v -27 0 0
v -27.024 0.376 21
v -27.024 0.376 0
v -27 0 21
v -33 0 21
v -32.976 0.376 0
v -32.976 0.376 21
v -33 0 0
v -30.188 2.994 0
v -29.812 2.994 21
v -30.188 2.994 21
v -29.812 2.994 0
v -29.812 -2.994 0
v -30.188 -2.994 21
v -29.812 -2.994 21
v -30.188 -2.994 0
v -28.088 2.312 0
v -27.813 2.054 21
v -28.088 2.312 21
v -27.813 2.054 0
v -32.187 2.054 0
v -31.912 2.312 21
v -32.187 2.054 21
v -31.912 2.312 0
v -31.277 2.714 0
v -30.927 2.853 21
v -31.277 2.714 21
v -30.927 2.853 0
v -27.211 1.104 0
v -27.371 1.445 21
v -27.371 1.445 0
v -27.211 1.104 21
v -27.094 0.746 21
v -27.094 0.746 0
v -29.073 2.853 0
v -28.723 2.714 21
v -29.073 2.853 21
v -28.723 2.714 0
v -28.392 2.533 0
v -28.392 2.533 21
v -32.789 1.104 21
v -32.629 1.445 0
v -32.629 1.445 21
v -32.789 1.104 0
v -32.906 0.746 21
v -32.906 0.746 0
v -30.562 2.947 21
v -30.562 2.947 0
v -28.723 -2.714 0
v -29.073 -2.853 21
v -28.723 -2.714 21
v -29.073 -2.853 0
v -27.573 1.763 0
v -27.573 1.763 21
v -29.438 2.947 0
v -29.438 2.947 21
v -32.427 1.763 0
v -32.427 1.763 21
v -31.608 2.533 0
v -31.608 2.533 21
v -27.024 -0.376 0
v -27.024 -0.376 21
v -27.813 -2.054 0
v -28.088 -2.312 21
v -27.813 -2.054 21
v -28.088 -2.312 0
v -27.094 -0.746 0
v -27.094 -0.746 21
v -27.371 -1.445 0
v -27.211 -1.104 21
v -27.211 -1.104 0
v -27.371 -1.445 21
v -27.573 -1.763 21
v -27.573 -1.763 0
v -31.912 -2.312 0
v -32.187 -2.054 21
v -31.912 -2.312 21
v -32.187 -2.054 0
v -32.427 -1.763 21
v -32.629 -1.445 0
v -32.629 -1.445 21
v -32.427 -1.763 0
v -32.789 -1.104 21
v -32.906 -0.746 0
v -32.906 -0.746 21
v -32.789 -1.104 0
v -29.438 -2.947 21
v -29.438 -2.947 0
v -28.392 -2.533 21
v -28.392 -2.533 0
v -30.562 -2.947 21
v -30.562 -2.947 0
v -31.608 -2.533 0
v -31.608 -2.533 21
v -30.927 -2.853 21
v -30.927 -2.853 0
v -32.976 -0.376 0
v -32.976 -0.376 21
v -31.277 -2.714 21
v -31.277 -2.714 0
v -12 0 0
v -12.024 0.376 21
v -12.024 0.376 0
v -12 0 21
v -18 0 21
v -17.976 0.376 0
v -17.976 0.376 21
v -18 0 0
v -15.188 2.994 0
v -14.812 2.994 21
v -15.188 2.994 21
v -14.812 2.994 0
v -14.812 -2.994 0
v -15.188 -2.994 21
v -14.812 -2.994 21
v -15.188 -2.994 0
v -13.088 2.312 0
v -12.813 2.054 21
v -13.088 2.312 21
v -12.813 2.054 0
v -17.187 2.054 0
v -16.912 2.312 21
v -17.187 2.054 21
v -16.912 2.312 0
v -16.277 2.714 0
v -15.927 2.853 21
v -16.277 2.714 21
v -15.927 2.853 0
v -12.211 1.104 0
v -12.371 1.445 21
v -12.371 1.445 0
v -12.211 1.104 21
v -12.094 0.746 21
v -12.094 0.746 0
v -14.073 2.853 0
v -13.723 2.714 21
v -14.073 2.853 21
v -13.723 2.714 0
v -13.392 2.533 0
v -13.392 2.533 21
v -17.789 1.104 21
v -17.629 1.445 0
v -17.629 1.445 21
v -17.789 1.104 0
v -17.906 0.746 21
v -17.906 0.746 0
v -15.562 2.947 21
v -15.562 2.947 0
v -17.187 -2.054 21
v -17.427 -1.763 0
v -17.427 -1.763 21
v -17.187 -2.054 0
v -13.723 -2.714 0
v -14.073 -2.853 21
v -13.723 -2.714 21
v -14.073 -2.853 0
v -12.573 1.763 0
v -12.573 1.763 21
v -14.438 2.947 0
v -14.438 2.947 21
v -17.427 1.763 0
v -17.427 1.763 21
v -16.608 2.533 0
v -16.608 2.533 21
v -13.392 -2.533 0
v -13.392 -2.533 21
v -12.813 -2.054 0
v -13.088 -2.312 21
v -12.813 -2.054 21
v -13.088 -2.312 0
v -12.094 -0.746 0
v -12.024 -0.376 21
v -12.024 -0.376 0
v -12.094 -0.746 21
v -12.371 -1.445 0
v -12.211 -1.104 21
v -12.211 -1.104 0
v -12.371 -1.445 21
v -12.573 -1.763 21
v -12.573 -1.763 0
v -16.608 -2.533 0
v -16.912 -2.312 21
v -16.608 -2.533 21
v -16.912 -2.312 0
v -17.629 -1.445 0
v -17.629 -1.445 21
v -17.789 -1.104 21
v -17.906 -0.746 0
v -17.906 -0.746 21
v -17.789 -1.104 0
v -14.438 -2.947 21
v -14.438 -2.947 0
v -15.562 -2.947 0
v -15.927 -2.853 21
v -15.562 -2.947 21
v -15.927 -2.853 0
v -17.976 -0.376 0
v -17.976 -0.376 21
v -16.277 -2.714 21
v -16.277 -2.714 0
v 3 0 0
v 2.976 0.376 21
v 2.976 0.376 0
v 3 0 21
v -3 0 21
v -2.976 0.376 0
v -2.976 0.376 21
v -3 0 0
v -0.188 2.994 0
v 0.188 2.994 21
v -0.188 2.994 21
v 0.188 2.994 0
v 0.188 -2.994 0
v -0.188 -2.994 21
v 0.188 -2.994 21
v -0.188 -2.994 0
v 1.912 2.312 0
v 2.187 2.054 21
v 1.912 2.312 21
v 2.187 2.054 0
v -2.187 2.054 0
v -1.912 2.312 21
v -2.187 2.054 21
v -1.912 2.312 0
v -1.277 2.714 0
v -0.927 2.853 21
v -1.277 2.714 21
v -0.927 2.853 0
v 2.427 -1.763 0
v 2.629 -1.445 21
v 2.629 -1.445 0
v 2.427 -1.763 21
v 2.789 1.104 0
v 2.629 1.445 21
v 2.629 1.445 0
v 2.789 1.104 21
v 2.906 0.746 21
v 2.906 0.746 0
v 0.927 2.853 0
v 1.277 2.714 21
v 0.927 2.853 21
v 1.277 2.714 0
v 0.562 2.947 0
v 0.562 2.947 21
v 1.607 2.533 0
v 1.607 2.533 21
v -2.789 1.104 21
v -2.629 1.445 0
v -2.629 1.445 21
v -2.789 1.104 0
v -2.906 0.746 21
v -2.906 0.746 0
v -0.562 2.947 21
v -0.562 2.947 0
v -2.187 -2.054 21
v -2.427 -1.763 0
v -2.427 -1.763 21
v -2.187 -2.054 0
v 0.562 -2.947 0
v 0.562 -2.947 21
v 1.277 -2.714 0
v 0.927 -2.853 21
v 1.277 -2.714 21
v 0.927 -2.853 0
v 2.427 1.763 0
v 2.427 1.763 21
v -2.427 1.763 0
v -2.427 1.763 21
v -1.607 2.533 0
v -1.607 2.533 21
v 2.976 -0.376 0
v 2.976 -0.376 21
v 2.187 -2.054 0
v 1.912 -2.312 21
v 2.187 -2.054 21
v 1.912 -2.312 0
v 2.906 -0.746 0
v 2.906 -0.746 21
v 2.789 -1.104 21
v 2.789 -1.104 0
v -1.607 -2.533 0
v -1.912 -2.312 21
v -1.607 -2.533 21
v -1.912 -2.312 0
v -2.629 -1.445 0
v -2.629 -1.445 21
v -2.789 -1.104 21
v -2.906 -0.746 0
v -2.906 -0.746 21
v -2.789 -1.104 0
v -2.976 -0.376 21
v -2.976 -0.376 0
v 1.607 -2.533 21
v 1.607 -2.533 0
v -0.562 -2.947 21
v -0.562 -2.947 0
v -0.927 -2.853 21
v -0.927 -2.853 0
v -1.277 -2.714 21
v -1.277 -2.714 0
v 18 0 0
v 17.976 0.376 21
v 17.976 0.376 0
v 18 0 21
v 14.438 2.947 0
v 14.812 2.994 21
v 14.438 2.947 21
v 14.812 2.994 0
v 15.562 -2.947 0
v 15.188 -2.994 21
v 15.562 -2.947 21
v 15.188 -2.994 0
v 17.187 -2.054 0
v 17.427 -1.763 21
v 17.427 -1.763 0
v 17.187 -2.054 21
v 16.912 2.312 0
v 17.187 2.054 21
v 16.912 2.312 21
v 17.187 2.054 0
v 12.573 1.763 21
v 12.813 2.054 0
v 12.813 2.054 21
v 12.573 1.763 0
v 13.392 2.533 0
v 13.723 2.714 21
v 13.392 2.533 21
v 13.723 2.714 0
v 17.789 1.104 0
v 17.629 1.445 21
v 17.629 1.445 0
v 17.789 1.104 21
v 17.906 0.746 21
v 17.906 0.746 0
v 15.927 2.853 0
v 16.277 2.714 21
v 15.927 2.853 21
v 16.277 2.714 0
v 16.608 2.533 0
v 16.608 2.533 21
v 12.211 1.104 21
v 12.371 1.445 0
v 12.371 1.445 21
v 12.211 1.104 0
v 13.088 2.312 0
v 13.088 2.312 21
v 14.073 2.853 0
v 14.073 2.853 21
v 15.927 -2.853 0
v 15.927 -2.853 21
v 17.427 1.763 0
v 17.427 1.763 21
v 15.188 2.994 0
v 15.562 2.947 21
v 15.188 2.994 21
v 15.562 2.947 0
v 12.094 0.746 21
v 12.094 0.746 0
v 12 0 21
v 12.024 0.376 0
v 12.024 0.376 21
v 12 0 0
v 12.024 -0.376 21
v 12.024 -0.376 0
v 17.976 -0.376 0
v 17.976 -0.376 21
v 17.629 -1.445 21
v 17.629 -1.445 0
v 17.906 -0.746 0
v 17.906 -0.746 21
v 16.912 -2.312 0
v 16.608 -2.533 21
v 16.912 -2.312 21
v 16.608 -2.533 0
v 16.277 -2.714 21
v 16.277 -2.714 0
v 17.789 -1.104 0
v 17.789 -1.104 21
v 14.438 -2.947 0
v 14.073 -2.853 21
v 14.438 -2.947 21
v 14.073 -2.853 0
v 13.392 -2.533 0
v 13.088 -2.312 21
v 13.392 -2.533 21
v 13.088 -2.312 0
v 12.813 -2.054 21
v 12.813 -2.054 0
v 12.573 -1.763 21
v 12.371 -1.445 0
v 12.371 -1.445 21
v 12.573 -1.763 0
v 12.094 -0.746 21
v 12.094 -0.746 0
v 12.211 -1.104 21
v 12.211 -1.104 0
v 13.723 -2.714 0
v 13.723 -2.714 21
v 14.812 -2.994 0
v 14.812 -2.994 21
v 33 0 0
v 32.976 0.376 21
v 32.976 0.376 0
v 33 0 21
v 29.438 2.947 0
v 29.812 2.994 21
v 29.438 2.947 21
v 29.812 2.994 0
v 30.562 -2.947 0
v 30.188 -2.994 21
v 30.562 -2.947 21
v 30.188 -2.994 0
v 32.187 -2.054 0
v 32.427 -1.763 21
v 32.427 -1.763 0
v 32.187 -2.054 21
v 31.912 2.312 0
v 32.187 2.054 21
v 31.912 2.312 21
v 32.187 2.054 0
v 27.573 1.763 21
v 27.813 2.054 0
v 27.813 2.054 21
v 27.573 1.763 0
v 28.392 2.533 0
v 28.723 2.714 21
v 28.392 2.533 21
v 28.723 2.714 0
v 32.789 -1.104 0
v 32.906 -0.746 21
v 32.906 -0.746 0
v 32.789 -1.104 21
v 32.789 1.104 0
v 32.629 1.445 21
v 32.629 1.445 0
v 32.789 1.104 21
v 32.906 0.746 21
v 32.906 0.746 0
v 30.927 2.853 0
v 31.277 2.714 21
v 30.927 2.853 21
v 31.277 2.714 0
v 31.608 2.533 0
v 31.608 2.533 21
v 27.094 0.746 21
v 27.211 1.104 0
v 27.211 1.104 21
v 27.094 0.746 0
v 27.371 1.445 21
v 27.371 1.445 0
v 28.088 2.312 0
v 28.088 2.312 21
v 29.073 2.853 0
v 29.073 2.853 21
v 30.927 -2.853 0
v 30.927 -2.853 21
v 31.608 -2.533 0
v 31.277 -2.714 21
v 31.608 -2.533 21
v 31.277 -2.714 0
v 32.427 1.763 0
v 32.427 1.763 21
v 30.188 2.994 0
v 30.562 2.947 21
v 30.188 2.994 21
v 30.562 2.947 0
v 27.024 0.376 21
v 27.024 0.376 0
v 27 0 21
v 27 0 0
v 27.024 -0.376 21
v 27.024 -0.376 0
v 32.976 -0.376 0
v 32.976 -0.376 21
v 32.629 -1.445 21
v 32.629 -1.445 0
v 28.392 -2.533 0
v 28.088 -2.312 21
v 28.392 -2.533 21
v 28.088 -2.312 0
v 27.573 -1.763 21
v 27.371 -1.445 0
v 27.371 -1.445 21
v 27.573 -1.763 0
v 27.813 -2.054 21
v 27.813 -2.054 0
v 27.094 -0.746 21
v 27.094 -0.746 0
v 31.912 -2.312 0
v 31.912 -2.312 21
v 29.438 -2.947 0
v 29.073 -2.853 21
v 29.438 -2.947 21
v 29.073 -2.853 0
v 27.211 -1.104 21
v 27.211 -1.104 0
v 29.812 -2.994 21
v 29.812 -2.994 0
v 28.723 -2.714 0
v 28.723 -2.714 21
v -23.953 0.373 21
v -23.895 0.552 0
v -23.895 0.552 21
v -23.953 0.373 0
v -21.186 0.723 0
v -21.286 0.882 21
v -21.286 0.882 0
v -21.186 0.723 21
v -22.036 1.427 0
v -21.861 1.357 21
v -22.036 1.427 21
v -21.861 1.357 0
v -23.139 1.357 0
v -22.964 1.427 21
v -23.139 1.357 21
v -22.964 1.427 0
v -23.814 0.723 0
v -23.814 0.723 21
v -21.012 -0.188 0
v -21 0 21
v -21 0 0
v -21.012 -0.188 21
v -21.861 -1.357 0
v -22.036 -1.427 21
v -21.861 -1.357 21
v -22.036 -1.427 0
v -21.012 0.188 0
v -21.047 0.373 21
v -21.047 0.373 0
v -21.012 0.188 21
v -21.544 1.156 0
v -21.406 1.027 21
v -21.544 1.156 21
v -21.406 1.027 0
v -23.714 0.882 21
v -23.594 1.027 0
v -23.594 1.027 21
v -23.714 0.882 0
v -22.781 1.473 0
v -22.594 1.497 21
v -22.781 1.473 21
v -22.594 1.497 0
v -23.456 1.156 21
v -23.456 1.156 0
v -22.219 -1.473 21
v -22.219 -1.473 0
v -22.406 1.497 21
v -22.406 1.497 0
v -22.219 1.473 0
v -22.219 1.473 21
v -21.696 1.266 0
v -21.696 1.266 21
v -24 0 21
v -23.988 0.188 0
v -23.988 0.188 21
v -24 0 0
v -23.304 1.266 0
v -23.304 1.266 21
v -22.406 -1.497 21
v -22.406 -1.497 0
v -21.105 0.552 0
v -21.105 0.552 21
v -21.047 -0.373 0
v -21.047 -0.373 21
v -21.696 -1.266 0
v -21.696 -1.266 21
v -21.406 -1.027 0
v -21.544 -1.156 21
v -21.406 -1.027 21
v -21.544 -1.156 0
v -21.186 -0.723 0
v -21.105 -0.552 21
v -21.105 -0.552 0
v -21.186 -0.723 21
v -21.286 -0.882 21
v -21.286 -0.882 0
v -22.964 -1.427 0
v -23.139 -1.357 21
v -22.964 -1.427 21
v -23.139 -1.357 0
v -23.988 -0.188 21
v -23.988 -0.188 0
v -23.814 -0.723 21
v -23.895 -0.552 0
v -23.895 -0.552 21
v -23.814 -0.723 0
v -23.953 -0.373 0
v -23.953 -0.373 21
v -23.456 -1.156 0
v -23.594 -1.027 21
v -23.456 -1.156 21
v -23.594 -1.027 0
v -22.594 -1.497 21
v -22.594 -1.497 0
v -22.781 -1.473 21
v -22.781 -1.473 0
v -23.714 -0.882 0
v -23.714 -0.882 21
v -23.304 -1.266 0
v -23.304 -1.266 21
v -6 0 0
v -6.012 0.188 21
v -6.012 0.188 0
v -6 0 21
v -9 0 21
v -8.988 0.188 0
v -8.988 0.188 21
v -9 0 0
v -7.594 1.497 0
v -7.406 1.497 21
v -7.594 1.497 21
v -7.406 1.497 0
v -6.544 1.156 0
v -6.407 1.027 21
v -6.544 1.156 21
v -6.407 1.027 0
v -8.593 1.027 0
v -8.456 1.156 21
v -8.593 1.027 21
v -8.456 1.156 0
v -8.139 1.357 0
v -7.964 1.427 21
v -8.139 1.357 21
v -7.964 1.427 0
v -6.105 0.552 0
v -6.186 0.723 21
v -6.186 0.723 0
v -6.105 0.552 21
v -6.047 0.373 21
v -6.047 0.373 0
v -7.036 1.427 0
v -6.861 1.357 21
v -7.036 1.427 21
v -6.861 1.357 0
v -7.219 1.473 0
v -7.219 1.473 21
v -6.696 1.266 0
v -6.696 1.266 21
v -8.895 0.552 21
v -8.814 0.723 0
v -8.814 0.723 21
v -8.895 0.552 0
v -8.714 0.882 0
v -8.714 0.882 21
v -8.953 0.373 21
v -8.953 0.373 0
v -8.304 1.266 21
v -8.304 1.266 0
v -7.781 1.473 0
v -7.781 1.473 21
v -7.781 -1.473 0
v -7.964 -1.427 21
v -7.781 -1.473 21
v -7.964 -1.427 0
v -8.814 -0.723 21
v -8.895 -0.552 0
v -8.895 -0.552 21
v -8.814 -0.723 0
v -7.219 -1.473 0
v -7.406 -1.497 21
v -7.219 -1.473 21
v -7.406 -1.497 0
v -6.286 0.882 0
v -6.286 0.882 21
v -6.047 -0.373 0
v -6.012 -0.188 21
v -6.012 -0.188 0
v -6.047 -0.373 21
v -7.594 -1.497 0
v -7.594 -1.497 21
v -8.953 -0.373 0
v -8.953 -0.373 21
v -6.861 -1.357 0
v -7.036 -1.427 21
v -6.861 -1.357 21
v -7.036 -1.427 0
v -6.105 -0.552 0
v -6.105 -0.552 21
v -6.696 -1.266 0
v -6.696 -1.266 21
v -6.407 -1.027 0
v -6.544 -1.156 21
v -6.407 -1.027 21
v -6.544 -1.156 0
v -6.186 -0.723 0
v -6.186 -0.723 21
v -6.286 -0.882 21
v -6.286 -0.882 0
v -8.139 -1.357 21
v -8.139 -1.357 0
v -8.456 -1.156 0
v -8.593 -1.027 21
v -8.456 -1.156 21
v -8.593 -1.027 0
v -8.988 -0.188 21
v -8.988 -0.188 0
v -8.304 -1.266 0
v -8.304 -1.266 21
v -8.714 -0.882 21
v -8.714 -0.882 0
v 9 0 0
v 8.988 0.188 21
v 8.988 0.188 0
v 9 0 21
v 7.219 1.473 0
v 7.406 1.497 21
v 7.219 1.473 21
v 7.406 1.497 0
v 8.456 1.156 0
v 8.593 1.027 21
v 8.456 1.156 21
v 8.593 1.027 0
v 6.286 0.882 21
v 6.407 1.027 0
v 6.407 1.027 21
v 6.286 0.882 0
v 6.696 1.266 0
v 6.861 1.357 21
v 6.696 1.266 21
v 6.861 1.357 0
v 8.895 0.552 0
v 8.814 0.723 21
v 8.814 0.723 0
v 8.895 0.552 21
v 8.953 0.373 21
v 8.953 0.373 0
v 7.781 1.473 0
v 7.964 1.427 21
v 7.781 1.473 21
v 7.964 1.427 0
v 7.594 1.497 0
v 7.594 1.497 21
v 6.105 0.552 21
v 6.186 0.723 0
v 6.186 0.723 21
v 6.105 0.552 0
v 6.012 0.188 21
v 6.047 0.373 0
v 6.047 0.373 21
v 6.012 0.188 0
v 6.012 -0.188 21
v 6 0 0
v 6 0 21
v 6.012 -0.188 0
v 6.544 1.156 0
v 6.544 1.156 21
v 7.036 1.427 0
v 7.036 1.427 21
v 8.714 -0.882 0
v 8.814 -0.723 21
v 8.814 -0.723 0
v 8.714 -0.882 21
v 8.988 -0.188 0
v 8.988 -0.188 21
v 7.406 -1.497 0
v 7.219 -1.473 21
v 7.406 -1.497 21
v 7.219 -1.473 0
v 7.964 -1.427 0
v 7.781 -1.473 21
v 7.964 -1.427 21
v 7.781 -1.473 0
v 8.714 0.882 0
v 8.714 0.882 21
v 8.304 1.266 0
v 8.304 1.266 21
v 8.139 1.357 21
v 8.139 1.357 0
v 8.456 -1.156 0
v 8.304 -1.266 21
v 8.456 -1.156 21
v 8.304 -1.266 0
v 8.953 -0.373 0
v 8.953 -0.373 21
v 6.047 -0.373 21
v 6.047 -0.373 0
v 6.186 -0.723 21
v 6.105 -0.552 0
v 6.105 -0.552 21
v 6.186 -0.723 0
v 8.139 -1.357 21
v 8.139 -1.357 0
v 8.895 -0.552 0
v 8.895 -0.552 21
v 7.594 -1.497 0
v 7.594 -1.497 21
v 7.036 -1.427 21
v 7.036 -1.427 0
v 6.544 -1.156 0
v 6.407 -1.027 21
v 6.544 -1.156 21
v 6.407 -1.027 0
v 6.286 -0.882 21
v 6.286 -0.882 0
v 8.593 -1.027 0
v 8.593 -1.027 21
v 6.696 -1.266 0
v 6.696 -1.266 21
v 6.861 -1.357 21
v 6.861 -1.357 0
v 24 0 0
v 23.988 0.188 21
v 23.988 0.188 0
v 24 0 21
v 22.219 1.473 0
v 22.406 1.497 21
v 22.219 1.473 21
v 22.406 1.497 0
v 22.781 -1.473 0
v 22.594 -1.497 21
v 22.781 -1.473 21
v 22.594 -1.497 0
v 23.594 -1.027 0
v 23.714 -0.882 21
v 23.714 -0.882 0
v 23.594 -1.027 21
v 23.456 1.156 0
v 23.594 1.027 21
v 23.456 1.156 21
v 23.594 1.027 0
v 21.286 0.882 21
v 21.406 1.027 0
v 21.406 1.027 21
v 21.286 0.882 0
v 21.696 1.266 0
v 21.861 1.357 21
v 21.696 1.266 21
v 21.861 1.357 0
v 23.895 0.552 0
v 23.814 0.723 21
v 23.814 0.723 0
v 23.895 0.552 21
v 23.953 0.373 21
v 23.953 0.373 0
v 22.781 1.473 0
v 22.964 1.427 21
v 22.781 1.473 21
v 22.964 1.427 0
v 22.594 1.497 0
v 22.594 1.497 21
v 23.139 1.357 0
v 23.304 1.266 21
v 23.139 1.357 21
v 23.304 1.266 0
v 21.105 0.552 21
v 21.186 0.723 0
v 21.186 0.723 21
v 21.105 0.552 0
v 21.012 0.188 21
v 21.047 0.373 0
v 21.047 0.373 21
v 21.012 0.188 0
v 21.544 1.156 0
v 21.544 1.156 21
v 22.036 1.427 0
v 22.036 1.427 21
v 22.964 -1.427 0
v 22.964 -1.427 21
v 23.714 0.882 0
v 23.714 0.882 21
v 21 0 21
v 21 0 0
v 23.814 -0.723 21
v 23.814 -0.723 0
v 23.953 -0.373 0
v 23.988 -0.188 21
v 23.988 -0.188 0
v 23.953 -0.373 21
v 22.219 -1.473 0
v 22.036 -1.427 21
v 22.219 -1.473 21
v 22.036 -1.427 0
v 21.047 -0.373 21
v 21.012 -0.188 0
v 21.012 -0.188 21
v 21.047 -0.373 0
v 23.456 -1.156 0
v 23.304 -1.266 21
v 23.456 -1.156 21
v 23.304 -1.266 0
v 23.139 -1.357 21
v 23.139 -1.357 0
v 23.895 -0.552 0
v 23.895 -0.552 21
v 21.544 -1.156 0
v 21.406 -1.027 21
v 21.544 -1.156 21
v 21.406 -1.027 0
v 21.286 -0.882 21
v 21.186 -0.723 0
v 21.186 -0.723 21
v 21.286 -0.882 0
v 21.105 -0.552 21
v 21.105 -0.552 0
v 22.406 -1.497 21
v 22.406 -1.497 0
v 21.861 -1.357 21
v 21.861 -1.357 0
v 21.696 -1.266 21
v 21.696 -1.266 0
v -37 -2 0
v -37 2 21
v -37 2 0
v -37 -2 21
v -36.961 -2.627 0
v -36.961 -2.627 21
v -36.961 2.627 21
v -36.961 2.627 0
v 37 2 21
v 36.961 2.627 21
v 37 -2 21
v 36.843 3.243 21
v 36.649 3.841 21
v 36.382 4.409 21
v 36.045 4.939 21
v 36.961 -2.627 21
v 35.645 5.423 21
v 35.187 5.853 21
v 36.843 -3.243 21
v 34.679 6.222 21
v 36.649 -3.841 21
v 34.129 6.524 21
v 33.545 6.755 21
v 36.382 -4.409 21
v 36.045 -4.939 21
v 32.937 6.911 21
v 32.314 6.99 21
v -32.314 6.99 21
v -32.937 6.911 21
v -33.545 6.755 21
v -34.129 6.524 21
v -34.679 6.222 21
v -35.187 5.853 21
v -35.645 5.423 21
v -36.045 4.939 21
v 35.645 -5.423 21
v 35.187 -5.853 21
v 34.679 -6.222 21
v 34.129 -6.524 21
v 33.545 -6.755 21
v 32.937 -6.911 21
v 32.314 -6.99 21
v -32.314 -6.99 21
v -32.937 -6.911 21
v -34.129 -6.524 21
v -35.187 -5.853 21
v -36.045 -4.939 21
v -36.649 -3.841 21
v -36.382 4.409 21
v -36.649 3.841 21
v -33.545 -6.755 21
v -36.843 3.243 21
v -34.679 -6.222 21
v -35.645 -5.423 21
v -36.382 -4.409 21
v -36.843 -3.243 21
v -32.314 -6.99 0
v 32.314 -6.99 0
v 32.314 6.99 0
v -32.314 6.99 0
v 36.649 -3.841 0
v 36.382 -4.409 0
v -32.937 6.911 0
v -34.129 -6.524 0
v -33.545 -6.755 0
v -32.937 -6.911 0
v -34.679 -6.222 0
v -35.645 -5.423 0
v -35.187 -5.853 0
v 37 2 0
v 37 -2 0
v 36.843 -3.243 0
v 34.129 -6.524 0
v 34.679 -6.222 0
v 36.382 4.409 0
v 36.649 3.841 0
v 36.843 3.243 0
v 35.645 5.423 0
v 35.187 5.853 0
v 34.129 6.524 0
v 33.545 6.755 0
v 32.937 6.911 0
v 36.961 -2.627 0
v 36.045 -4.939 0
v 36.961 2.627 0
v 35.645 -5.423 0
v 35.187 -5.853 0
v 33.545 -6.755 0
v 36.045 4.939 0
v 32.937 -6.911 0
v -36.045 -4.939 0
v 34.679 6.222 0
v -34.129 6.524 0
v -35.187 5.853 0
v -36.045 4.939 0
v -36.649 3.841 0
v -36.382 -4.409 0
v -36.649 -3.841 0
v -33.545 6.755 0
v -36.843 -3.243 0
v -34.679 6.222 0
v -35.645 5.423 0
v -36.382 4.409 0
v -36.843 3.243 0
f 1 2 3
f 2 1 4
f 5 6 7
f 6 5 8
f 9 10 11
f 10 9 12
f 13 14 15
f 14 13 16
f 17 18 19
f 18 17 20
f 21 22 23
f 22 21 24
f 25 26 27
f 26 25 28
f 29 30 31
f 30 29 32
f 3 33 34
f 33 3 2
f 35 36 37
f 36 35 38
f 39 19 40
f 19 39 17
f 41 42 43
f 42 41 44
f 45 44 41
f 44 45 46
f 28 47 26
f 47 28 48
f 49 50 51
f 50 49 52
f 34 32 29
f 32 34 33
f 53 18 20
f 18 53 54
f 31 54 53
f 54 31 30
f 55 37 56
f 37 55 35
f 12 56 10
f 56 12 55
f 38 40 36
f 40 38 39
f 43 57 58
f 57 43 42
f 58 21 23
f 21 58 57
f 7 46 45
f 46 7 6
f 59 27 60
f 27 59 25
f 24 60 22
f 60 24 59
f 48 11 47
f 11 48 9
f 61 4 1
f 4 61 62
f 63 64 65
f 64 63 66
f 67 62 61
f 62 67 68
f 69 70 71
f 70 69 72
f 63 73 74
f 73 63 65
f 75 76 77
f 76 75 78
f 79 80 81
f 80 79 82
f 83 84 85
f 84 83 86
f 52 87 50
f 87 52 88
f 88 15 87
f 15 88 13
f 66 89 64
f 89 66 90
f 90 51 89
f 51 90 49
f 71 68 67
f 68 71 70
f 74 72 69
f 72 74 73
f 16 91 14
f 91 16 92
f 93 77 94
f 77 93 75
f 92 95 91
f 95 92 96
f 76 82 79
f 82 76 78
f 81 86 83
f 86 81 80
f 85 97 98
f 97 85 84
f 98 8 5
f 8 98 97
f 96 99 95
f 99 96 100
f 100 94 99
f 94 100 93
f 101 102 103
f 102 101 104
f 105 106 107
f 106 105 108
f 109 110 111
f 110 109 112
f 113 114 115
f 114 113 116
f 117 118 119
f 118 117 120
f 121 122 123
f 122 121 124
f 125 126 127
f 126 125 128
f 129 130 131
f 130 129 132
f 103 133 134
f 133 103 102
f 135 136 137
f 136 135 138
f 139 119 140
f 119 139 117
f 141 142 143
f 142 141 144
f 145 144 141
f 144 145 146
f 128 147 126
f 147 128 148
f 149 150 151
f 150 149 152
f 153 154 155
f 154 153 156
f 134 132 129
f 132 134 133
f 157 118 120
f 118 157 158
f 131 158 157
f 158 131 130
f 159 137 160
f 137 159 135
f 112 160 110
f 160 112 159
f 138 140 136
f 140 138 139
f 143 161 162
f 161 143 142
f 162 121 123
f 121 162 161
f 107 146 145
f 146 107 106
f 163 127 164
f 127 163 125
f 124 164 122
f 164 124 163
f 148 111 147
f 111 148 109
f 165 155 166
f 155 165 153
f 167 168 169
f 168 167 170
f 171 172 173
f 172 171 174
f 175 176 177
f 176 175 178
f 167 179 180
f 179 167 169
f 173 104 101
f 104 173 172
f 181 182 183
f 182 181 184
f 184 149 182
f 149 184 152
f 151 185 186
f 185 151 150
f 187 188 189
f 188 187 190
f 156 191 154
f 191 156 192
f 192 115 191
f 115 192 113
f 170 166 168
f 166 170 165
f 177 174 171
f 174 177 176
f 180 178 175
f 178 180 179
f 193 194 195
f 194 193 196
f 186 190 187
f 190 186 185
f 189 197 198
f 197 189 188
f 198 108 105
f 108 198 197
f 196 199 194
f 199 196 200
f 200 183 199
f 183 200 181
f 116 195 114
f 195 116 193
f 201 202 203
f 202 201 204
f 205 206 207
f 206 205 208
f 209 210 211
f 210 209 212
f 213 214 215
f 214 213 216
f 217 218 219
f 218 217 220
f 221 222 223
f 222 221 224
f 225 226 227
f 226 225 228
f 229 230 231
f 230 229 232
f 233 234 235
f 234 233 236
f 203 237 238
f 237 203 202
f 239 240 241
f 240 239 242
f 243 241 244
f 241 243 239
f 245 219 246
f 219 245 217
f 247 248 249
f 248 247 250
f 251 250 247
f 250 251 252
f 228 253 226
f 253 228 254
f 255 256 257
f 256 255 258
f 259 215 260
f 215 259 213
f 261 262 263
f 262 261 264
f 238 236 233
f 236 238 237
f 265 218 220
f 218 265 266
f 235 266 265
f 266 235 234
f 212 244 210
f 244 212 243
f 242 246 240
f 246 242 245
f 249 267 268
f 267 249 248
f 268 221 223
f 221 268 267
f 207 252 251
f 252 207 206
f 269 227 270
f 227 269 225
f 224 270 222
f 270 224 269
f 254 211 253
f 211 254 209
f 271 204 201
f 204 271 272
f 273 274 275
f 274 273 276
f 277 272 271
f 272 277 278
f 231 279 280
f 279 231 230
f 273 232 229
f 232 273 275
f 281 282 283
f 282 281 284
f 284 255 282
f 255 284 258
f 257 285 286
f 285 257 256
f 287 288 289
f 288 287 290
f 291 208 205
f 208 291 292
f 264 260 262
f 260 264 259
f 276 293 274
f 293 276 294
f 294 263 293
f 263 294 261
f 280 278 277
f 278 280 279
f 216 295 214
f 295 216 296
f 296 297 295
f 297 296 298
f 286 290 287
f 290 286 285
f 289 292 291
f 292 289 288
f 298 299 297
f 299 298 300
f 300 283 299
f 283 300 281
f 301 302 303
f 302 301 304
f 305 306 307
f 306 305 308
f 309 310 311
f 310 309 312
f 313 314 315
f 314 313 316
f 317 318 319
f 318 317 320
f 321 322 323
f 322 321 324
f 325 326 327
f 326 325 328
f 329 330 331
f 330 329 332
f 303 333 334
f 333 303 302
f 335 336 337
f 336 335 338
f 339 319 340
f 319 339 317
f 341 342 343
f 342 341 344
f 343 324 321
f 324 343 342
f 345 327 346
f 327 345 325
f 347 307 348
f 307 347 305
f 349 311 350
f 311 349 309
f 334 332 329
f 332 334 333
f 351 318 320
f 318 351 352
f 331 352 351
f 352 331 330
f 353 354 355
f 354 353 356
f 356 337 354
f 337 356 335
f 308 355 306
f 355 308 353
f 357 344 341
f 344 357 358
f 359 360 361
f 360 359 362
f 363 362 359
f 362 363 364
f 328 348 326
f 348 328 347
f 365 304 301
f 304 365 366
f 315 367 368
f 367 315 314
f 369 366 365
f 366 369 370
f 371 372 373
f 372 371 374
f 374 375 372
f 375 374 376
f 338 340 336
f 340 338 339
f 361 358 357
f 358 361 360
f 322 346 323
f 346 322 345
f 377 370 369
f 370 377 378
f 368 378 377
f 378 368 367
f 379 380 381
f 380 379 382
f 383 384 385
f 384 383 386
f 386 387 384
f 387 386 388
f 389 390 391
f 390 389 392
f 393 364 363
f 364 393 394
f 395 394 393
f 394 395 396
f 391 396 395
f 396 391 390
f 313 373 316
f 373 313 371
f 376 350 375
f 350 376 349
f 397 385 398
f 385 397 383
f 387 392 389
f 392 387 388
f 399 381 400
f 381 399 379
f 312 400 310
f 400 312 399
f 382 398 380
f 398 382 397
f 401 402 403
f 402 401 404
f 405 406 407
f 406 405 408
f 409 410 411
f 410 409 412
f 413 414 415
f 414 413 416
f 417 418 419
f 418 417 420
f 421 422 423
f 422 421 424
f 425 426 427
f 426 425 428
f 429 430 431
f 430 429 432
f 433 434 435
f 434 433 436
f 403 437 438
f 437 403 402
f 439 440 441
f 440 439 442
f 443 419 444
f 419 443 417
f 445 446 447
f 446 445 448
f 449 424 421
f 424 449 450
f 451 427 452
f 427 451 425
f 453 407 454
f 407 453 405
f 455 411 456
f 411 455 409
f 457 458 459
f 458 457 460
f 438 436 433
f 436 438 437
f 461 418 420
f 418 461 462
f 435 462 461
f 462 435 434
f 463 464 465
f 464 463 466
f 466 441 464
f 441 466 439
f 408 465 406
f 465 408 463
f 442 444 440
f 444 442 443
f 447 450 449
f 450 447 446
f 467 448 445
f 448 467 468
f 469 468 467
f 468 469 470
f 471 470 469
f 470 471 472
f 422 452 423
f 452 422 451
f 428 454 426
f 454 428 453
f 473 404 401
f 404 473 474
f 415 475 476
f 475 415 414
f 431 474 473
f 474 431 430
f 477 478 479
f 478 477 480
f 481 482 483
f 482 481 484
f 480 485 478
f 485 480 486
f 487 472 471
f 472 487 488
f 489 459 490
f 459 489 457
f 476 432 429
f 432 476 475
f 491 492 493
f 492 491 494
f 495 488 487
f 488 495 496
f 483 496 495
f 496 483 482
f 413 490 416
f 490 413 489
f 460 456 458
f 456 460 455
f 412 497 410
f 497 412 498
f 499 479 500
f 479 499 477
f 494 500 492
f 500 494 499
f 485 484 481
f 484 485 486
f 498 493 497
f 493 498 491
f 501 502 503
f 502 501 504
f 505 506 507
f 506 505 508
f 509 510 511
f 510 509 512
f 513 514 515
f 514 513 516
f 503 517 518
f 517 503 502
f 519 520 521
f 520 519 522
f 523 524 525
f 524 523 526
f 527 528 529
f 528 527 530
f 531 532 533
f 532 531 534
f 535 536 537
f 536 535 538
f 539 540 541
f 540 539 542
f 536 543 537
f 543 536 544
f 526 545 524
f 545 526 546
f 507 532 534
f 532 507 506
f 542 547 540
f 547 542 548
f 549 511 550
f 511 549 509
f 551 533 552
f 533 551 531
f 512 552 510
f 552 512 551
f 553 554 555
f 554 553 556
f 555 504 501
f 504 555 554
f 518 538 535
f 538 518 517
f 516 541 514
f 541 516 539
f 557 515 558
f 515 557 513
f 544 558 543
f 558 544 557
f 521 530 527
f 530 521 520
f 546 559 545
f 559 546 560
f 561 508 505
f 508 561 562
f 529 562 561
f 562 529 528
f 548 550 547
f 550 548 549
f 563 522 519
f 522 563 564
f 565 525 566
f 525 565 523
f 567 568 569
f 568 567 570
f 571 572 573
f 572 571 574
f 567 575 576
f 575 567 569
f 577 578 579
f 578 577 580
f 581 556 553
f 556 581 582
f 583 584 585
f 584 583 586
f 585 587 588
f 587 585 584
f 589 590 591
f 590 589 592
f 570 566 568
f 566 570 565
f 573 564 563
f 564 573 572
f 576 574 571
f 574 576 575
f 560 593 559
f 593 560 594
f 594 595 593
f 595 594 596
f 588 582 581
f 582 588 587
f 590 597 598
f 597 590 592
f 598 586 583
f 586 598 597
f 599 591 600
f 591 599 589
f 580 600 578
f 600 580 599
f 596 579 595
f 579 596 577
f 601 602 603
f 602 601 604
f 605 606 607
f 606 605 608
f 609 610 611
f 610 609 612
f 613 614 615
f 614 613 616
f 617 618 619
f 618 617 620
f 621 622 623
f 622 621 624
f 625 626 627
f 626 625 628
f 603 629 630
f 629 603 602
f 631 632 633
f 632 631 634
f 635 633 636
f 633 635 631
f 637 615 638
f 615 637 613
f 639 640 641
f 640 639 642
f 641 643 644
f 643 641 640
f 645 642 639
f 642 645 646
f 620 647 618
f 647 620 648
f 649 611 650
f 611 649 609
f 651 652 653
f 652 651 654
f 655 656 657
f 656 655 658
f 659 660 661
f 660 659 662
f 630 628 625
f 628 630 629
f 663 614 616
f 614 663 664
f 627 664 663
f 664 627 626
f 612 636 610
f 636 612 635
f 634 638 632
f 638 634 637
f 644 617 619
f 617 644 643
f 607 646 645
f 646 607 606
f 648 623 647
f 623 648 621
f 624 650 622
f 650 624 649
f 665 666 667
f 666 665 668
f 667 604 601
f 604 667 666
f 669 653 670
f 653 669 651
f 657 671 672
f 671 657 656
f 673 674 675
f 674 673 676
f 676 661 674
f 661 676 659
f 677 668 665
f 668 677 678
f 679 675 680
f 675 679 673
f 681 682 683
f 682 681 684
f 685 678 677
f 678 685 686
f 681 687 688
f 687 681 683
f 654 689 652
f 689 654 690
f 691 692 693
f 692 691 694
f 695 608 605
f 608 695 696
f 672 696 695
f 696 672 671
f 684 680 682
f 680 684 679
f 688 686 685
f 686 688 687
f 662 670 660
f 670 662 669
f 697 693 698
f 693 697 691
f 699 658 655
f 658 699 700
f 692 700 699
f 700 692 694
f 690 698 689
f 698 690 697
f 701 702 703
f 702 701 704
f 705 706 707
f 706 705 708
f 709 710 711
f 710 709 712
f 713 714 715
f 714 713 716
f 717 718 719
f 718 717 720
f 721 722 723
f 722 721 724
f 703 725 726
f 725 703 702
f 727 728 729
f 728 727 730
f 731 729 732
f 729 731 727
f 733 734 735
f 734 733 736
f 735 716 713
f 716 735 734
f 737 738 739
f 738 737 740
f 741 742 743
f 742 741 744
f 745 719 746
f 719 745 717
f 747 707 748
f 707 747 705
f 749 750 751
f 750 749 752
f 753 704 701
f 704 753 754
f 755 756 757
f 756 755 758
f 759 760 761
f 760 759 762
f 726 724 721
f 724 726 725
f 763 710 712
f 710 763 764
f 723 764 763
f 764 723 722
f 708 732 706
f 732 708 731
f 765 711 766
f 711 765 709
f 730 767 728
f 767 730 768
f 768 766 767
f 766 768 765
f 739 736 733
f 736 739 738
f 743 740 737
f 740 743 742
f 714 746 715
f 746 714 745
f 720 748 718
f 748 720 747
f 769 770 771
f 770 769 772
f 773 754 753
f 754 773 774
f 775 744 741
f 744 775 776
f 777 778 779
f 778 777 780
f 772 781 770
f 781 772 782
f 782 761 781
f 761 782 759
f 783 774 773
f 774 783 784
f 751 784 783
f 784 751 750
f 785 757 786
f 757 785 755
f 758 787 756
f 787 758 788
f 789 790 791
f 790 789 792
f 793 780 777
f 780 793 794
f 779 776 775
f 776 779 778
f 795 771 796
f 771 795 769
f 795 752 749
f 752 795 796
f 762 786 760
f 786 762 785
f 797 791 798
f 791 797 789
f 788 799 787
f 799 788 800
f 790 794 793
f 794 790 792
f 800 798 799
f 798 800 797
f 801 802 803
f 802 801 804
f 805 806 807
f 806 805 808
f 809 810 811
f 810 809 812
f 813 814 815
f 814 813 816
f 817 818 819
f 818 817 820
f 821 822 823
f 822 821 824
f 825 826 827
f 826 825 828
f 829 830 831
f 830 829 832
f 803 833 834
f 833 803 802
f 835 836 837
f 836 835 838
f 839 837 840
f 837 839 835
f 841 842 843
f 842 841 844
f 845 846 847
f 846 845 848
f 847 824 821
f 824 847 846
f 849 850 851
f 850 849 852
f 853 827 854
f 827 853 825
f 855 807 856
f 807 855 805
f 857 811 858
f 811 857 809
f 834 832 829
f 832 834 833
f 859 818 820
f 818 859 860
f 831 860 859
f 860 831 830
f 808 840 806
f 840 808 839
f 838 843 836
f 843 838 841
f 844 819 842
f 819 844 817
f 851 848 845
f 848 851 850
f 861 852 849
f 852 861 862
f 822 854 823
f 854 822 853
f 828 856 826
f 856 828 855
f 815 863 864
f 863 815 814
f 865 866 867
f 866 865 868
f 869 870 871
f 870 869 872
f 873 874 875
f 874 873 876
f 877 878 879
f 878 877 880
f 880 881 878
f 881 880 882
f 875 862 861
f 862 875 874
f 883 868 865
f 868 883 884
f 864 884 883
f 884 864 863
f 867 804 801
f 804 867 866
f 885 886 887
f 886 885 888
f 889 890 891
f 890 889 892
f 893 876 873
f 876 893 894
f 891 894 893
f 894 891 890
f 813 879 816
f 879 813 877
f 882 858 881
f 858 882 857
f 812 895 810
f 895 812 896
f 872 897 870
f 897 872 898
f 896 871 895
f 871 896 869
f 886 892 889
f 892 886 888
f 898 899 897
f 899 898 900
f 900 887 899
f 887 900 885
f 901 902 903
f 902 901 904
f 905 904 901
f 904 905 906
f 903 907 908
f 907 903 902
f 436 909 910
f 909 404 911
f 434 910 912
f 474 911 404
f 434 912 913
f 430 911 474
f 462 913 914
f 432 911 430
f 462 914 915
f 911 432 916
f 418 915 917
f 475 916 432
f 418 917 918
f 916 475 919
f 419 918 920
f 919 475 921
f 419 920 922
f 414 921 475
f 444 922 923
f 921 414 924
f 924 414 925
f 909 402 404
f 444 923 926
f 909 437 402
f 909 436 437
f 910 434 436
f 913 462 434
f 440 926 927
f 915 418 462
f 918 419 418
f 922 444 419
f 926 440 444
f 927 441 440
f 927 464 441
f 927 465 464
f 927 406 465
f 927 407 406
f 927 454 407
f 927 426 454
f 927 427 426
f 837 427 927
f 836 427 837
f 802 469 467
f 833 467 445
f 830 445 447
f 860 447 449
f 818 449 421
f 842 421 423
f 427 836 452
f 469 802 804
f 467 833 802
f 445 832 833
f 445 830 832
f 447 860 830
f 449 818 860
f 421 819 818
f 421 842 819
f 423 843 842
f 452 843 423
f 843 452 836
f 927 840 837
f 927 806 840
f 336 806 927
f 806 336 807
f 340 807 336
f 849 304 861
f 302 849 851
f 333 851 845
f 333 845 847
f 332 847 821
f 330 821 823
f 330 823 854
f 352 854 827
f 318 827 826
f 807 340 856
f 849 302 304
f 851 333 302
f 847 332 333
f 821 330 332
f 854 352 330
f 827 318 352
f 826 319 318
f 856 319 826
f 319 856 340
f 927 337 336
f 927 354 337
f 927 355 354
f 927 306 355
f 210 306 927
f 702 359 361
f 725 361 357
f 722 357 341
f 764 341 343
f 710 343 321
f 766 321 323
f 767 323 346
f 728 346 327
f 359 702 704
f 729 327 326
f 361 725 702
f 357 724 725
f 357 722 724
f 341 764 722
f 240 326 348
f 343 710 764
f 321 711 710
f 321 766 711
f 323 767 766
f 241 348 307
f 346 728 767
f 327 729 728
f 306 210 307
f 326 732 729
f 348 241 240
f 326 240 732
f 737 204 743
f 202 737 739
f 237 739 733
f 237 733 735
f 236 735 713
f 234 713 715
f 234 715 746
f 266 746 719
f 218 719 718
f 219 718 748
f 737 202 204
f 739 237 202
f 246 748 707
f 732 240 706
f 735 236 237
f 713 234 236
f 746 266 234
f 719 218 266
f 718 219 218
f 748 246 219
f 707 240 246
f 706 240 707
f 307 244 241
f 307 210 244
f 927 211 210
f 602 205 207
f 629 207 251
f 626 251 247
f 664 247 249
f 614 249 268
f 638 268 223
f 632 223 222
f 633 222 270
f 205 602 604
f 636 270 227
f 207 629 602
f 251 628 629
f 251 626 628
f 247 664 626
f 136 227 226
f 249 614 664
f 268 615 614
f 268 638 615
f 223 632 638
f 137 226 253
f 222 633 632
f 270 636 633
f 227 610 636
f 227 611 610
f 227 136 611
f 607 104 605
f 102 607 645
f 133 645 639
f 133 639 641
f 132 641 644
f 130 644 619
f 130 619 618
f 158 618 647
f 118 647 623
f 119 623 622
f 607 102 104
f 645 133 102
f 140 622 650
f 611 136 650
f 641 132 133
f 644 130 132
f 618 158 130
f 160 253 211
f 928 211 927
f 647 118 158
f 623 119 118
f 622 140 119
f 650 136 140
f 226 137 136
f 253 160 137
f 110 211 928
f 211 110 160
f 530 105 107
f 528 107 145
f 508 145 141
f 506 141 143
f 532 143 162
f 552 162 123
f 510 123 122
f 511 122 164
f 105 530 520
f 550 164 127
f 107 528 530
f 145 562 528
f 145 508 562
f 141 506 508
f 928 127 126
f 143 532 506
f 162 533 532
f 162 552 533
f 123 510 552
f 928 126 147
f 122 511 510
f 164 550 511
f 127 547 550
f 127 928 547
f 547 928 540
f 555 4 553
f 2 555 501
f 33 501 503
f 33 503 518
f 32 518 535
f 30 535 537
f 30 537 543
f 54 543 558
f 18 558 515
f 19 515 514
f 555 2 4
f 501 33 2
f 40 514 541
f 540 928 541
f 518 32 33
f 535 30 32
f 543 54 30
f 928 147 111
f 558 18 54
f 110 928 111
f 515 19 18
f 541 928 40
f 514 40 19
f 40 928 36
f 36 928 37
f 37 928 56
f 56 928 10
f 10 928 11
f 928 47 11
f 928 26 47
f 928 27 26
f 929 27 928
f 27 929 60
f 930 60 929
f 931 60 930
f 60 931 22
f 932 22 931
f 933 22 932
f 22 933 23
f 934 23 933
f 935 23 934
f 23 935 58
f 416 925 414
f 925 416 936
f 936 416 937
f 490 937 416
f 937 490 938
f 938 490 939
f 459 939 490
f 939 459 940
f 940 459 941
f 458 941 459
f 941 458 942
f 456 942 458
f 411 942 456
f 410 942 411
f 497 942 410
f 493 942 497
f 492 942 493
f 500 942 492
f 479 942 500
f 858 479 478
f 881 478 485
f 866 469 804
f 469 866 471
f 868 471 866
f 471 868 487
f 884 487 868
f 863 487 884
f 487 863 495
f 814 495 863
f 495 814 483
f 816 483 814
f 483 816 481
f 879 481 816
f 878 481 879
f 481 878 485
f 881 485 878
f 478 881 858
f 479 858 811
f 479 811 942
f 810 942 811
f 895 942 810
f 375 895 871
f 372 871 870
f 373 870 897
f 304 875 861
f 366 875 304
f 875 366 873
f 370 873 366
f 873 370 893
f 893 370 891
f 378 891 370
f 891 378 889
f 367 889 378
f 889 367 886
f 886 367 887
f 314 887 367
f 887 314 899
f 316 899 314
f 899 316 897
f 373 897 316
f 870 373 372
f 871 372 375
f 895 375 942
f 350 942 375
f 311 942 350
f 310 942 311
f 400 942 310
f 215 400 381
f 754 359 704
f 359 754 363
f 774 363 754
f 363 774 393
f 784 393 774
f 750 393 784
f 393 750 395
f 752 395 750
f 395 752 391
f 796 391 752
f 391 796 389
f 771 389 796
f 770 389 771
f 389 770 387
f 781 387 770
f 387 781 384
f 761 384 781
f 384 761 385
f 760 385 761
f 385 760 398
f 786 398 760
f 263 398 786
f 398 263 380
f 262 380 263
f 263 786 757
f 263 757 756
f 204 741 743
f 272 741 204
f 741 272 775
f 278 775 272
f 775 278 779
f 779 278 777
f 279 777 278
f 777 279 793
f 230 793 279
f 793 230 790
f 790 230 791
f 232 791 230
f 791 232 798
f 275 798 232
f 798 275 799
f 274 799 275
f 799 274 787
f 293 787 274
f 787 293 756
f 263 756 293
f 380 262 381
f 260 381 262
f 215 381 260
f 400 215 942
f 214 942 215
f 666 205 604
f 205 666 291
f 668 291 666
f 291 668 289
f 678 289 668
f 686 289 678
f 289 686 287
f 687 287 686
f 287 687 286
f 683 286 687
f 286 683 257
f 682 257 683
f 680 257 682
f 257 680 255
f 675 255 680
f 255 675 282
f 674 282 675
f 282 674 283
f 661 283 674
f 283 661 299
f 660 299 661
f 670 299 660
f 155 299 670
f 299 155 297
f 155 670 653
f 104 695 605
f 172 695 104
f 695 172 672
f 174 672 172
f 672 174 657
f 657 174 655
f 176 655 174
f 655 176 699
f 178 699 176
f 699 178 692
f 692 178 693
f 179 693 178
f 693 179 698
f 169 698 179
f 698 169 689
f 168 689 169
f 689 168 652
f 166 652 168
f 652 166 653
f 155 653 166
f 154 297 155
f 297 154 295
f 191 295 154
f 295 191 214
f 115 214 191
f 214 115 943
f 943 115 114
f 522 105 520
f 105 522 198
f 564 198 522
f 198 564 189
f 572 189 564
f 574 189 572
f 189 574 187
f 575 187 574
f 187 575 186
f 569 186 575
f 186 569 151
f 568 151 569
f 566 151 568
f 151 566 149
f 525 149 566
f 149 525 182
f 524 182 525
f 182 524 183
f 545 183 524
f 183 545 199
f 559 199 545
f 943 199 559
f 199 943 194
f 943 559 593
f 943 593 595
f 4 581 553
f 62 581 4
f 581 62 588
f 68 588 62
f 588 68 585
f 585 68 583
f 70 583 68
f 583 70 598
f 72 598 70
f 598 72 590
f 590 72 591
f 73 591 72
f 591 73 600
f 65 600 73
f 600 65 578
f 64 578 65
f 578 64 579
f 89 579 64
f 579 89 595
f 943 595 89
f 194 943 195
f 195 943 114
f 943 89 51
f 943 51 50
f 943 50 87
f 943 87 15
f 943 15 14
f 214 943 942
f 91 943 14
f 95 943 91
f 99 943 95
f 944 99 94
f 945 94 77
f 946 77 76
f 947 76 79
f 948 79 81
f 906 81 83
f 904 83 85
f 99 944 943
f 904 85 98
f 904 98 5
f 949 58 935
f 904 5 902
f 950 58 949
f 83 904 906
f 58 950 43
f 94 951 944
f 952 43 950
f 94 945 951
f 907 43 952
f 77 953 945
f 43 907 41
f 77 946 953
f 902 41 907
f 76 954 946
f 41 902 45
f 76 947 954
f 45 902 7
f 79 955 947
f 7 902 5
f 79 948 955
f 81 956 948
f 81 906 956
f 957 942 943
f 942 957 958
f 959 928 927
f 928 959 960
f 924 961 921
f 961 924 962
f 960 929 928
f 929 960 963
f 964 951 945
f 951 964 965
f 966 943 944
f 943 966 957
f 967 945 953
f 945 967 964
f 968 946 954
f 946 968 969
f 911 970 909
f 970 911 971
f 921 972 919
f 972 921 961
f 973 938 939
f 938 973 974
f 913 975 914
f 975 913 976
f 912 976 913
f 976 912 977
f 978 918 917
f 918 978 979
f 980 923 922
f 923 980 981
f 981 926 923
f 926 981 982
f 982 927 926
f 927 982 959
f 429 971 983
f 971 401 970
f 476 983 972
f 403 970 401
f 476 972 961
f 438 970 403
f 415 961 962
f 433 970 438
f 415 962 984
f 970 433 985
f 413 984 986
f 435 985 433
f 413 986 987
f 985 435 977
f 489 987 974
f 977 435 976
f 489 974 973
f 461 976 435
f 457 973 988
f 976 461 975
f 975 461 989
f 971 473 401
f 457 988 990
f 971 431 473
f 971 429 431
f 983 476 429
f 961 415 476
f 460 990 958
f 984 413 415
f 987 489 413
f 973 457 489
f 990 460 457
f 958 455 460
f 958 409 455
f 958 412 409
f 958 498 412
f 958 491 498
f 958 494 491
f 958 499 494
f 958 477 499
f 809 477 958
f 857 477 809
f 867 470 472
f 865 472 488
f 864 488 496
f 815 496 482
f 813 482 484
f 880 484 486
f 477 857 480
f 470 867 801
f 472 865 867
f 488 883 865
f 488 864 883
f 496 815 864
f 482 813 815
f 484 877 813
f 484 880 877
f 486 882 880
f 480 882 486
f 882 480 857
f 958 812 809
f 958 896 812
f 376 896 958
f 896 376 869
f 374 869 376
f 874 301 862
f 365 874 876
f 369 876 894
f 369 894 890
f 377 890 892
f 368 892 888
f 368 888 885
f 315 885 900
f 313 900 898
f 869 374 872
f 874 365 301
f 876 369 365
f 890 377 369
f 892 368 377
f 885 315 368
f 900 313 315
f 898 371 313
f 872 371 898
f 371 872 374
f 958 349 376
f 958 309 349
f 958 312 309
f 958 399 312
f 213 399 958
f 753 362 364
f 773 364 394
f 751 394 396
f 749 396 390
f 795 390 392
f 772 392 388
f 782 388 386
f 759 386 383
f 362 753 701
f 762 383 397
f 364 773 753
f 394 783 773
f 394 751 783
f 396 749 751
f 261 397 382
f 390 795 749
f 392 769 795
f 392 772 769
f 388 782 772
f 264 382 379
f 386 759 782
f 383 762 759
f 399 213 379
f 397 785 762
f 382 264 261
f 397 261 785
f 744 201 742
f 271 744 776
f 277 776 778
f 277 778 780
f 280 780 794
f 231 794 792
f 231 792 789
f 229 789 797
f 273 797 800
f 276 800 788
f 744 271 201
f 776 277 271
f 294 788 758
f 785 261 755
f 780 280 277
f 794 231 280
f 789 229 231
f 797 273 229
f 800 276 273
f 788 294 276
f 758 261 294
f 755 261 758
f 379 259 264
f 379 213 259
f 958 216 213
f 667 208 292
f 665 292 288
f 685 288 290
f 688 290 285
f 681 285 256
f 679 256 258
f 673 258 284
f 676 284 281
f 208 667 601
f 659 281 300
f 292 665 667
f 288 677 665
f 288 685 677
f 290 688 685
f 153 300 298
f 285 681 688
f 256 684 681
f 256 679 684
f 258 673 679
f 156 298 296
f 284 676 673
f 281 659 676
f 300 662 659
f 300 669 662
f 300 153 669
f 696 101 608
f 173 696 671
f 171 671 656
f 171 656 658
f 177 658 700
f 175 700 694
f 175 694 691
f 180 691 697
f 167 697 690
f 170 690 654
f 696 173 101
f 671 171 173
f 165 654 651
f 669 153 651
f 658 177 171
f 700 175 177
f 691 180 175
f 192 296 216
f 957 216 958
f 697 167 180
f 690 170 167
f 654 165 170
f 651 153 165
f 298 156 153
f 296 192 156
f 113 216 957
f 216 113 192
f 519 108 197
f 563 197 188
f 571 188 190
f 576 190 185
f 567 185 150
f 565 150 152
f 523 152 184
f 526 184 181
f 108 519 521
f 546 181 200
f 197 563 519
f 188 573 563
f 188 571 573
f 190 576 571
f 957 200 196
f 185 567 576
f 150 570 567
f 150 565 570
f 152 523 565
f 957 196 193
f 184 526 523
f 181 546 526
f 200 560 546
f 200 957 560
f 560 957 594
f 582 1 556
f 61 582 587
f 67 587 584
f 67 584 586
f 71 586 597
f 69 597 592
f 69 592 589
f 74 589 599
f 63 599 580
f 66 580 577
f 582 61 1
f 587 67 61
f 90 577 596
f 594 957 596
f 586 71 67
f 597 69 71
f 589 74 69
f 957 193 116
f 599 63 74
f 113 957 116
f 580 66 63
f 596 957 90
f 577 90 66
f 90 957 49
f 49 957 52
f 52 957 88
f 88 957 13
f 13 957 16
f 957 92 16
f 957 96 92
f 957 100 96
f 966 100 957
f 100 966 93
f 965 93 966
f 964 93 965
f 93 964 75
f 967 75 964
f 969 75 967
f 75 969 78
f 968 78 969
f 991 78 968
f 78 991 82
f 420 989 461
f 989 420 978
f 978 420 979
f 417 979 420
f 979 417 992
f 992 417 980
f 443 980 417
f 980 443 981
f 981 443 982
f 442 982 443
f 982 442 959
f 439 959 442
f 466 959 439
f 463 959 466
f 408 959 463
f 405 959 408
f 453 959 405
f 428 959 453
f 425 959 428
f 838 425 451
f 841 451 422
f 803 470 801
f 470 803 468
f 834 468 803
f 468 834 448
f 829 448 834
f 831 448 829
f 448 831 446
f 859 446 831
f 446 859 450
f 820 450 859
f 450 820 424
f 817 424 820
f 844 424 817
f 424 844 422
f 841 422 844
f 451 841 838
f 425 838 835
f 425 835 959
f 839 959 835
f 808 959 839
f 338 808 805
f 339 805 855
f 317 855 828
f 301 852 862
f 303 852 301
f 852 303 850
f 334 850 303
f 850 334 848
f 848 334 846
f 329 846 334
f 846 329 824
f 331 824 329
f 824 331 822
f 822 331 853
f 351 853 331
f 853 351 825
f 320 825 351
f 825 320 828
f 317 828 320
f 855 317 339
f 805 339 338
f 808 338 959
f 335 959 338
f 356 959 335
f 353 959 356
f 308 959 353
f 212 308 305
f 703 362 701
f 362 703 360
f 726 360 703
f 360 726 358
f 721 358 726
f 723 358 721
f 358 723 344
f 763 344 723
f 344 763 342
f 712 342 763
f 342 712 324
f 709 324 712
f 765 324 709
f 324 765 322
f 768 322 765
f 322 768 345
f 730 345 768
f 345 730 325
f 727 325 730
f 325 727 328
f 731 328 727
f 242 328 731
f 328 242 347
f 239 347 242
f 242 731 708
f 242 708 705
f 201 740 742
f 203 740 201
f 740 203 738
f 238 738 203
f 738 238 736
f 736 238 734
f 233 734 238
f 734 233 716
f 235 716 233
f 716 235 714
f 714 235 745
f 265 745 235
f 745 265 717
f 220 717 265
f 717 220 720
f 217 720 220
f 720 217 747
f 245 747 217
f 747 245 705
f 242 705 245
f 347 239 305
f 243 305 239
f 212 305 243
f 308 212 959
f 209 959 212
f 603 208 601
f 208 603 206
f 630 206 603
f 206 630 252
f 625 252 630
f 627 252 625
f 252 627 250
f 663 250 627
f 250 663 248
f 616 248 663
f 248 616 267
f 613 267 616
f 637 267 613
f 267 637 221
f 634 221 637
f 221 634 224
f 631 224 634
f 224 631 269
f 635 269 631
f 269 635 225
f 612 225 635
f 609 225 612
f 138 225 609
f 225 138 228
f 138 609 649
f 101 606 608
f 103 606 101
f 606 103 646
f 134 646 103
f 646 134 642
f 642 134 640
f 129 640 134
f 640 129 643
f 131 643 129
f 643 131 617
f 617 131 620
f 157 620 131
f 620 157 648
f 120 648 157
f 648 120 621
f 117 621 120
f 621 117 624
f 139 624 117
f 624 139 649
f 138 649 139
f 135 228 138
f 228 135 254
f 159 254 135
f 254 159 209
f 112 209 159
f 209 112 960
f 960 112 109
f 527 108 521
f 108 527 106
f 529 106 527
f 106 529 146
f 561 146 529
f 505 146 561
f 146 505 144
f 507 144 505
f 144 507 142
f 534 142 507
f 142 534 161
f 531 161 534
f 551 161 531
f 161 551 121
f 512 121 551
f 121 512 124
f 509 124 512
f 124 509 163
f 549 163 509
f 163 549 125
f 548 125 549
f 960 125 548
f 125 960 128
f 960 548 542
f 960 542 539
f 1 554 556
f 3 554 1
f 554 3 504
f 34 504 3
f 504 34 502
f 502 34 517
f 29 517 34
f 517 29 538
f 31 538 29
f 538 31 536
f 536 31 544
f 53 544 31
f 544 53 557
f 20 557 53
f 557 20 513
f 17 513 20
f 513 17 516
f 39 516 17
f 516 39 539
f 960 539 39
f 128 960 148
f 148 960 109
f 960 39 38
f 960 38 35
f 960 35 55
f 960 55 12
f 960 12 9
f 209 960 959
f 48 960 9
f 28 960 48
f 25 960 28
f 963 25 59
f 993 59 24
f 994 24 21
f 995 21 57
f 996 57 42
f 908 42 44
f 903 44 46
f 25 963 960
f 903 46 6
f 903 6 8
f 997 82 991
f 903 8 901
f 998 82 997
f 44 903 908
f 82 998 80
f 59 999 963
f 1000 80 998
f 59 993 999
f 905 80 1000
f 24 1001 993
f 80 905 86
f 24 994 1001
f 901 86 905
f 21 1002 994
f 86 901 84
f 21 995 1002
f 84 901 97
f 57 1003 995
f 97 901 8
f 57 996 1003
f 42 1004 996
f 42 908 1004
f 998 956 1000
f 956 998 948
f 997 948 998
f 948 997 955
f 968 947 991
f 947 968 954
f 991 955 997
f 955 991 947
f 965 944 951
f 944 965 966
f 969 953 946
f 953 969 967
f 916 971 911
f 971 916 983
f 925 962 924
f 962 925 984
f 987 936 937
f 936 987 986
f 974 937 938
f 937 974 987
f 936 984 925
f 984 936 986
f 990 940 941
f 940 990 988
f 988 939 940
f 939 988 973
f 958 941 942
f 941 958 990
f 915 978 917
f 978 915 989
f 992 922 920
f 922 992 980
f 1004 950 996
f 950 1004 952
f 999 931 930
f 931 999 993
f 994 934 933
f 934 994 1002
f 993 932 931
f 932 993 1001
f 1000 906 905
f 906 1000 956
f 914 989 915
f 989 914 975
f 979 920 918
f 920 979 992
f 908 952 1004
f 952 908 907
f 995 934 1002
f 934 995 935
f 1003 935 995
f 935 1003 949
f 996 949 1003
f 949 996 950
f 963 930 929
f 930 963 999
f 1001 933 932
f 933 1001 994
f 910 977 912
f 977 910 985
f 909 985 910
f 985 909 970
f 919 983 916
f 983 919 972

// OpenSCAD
$fn = 50;


difference() {
	union() {
		hull() {
			translate(v = [-32.0000000000, 2.0000000000, 0]) {
				cylinder(h = 21, r = 5);
			}
			translate(v = [32.0000000000, 2.0000000000, 0]) {
				cylinder(h = 21, r = 5);
			}
			translate(v = [-32.0000000000, -2.0000000000, 0]) {
				cylinder(h = 21, r = 5);
			}
			translate(v = [32.0000000000, -2.0000000000, 0]) {
				cylinder(h = 21, r = 5);
			}
		}
	}
	union() {
		translate(v = [-30.0000000000, 0.0000000000, -100.0000000000]) {
			cylinder(h = 200, r = 3.0000000000);
		}
		translate(v = [-15.0000000000, 0.0000000000, -100.0000000000]) {
			cylinder(h = 200, r = 3.0000000000);
		}
		translate(v = [0.0000000000, 0.0000000000, -100.0000000000]) {
			cylinder(h = 200, r = 3.0000000000);
		}
		translate(v = [15.0000000000, 0.0000000000, -100.0000000000]) {
			cylinder(h = 200, r = 3.0000000000);
		}
		translate(v = [30.0000000000, 0.0000000000, -100.0000000000]) {
			cylinder(h = 200, r = 3.0000000000);
		}
		translate(v = [-30.0000000000, 0.0000000000, 0]) {
			cylinder(h = 21, r = 1.5000000000);
		}
		translate(v = [-22.5000000000, 0.0000000000, 0]) {
			cylinder(h = 21, r = 1.5000000000);
		}
		translate(v = [-15.0000000000, 0.0000000000, 0]) {
			cylinder(h = 21, r = 1.5000000000);
		}
		translate(v = [-7.5000000000, 0.0000000000, 0]) {
			cylinder(h = 21, r = 1.5000000000);
		}
		cylinder(h = 21, r = 1.5000000000);
		translate(v = [7.5000000000, 0.0000000000, 0]) {
			cylinder(h = 21, r = 1.5000000000);
		}
		translate(v = [15.0000000000, 0.0000000000, 0]) {
			cylinder(h = 21, r = 1.5000000000);
		}
		translate(v = [22.5000000000, 0.0000000000, 0]) {
			cylinder(h = 21, r = 1.5000000000);
		}
		translate(v = [30.0000000000, 0.0000000000, 0]) {
			cylinder(h = 21, r = 1.5000000000);
		}
		translate(v = [-30.0000000000, 0.0000000000, 0]) {
			cylinder(h = 21, r = 1.5000000000);
		}
		translate(v = [-22.5000000000, 0.0000000000, 0]) {
			cylinder(h = 21, r = 1.5000000000);
		}
		translate(v = [-15.0000000000, 0.0000000000, 0]) {
			cylinder(h = 21, r = 1.5000000000);
		}
		translate(v = [-7.5000000000, 0.0000000000, 0]) {
			cylinder(h = 21, r = 1.5000000000);
		}
		cylinder(h = 21, r = 1.5000000000);
		translate(v = [7.5000000000, 0.0000000000, 0]) {
			cylinder(h = 21, r = 1.5000000000);
		}
		translate(v = [15.0000000000, 0.0000000000, 0]) {
			cylinder(h = 21, r = 1.5000000000);
		}
		translate(v = [22.5000000000, 0.0000000000, 0]) {
			cylinder(h = 21, r = 1.5000000000);
		}
		translate(v = [30.0000000000, 0.0000000000, 0]) {
			cylinder(h = 21, r = 1.5000000000);
		}
		translate(v = [-30.0000000000, 0.0000000000, 0]) {
			cylinder(h = 21, r = 1.5000000000);
		}
		translate(v = [-22.5000000000, 0.0000000000, 0]) {
			cylinder(h = 21, r = 1.5000000000);
		}
		translate(v = [-15.0000000000, 0.0000000000, 0]) {
			cylinder(h = 21, r = 1.5000000000);
		}
		translate(v = [-7.5000000000, 0.0000000000, 0]) {
			cylinder(h = 21, r = 1.5000000000);
		}
		cylinder(h = 21, r = 1.5000000000);
		translate(v = [7.5000000000, 0.0000000000, 0]) {
			cylinder(h = 21, r = 1.5000000000);
		}
		translate(v = [15.0000000000, 0.0000000000, 0]) {
			cylinder(h = 21, r = 1.5000000000);
		}
		translate(v = [22.5000000000, 0.0000000000, 0]) {
			cylinder(h = 21, r = 1.5000000000);
		}
		translate(v = [30.0000000000, 0.0000000000, 0]) {
			cylinder(h = 21, r = 1.5000000000);
		}
	}
}
